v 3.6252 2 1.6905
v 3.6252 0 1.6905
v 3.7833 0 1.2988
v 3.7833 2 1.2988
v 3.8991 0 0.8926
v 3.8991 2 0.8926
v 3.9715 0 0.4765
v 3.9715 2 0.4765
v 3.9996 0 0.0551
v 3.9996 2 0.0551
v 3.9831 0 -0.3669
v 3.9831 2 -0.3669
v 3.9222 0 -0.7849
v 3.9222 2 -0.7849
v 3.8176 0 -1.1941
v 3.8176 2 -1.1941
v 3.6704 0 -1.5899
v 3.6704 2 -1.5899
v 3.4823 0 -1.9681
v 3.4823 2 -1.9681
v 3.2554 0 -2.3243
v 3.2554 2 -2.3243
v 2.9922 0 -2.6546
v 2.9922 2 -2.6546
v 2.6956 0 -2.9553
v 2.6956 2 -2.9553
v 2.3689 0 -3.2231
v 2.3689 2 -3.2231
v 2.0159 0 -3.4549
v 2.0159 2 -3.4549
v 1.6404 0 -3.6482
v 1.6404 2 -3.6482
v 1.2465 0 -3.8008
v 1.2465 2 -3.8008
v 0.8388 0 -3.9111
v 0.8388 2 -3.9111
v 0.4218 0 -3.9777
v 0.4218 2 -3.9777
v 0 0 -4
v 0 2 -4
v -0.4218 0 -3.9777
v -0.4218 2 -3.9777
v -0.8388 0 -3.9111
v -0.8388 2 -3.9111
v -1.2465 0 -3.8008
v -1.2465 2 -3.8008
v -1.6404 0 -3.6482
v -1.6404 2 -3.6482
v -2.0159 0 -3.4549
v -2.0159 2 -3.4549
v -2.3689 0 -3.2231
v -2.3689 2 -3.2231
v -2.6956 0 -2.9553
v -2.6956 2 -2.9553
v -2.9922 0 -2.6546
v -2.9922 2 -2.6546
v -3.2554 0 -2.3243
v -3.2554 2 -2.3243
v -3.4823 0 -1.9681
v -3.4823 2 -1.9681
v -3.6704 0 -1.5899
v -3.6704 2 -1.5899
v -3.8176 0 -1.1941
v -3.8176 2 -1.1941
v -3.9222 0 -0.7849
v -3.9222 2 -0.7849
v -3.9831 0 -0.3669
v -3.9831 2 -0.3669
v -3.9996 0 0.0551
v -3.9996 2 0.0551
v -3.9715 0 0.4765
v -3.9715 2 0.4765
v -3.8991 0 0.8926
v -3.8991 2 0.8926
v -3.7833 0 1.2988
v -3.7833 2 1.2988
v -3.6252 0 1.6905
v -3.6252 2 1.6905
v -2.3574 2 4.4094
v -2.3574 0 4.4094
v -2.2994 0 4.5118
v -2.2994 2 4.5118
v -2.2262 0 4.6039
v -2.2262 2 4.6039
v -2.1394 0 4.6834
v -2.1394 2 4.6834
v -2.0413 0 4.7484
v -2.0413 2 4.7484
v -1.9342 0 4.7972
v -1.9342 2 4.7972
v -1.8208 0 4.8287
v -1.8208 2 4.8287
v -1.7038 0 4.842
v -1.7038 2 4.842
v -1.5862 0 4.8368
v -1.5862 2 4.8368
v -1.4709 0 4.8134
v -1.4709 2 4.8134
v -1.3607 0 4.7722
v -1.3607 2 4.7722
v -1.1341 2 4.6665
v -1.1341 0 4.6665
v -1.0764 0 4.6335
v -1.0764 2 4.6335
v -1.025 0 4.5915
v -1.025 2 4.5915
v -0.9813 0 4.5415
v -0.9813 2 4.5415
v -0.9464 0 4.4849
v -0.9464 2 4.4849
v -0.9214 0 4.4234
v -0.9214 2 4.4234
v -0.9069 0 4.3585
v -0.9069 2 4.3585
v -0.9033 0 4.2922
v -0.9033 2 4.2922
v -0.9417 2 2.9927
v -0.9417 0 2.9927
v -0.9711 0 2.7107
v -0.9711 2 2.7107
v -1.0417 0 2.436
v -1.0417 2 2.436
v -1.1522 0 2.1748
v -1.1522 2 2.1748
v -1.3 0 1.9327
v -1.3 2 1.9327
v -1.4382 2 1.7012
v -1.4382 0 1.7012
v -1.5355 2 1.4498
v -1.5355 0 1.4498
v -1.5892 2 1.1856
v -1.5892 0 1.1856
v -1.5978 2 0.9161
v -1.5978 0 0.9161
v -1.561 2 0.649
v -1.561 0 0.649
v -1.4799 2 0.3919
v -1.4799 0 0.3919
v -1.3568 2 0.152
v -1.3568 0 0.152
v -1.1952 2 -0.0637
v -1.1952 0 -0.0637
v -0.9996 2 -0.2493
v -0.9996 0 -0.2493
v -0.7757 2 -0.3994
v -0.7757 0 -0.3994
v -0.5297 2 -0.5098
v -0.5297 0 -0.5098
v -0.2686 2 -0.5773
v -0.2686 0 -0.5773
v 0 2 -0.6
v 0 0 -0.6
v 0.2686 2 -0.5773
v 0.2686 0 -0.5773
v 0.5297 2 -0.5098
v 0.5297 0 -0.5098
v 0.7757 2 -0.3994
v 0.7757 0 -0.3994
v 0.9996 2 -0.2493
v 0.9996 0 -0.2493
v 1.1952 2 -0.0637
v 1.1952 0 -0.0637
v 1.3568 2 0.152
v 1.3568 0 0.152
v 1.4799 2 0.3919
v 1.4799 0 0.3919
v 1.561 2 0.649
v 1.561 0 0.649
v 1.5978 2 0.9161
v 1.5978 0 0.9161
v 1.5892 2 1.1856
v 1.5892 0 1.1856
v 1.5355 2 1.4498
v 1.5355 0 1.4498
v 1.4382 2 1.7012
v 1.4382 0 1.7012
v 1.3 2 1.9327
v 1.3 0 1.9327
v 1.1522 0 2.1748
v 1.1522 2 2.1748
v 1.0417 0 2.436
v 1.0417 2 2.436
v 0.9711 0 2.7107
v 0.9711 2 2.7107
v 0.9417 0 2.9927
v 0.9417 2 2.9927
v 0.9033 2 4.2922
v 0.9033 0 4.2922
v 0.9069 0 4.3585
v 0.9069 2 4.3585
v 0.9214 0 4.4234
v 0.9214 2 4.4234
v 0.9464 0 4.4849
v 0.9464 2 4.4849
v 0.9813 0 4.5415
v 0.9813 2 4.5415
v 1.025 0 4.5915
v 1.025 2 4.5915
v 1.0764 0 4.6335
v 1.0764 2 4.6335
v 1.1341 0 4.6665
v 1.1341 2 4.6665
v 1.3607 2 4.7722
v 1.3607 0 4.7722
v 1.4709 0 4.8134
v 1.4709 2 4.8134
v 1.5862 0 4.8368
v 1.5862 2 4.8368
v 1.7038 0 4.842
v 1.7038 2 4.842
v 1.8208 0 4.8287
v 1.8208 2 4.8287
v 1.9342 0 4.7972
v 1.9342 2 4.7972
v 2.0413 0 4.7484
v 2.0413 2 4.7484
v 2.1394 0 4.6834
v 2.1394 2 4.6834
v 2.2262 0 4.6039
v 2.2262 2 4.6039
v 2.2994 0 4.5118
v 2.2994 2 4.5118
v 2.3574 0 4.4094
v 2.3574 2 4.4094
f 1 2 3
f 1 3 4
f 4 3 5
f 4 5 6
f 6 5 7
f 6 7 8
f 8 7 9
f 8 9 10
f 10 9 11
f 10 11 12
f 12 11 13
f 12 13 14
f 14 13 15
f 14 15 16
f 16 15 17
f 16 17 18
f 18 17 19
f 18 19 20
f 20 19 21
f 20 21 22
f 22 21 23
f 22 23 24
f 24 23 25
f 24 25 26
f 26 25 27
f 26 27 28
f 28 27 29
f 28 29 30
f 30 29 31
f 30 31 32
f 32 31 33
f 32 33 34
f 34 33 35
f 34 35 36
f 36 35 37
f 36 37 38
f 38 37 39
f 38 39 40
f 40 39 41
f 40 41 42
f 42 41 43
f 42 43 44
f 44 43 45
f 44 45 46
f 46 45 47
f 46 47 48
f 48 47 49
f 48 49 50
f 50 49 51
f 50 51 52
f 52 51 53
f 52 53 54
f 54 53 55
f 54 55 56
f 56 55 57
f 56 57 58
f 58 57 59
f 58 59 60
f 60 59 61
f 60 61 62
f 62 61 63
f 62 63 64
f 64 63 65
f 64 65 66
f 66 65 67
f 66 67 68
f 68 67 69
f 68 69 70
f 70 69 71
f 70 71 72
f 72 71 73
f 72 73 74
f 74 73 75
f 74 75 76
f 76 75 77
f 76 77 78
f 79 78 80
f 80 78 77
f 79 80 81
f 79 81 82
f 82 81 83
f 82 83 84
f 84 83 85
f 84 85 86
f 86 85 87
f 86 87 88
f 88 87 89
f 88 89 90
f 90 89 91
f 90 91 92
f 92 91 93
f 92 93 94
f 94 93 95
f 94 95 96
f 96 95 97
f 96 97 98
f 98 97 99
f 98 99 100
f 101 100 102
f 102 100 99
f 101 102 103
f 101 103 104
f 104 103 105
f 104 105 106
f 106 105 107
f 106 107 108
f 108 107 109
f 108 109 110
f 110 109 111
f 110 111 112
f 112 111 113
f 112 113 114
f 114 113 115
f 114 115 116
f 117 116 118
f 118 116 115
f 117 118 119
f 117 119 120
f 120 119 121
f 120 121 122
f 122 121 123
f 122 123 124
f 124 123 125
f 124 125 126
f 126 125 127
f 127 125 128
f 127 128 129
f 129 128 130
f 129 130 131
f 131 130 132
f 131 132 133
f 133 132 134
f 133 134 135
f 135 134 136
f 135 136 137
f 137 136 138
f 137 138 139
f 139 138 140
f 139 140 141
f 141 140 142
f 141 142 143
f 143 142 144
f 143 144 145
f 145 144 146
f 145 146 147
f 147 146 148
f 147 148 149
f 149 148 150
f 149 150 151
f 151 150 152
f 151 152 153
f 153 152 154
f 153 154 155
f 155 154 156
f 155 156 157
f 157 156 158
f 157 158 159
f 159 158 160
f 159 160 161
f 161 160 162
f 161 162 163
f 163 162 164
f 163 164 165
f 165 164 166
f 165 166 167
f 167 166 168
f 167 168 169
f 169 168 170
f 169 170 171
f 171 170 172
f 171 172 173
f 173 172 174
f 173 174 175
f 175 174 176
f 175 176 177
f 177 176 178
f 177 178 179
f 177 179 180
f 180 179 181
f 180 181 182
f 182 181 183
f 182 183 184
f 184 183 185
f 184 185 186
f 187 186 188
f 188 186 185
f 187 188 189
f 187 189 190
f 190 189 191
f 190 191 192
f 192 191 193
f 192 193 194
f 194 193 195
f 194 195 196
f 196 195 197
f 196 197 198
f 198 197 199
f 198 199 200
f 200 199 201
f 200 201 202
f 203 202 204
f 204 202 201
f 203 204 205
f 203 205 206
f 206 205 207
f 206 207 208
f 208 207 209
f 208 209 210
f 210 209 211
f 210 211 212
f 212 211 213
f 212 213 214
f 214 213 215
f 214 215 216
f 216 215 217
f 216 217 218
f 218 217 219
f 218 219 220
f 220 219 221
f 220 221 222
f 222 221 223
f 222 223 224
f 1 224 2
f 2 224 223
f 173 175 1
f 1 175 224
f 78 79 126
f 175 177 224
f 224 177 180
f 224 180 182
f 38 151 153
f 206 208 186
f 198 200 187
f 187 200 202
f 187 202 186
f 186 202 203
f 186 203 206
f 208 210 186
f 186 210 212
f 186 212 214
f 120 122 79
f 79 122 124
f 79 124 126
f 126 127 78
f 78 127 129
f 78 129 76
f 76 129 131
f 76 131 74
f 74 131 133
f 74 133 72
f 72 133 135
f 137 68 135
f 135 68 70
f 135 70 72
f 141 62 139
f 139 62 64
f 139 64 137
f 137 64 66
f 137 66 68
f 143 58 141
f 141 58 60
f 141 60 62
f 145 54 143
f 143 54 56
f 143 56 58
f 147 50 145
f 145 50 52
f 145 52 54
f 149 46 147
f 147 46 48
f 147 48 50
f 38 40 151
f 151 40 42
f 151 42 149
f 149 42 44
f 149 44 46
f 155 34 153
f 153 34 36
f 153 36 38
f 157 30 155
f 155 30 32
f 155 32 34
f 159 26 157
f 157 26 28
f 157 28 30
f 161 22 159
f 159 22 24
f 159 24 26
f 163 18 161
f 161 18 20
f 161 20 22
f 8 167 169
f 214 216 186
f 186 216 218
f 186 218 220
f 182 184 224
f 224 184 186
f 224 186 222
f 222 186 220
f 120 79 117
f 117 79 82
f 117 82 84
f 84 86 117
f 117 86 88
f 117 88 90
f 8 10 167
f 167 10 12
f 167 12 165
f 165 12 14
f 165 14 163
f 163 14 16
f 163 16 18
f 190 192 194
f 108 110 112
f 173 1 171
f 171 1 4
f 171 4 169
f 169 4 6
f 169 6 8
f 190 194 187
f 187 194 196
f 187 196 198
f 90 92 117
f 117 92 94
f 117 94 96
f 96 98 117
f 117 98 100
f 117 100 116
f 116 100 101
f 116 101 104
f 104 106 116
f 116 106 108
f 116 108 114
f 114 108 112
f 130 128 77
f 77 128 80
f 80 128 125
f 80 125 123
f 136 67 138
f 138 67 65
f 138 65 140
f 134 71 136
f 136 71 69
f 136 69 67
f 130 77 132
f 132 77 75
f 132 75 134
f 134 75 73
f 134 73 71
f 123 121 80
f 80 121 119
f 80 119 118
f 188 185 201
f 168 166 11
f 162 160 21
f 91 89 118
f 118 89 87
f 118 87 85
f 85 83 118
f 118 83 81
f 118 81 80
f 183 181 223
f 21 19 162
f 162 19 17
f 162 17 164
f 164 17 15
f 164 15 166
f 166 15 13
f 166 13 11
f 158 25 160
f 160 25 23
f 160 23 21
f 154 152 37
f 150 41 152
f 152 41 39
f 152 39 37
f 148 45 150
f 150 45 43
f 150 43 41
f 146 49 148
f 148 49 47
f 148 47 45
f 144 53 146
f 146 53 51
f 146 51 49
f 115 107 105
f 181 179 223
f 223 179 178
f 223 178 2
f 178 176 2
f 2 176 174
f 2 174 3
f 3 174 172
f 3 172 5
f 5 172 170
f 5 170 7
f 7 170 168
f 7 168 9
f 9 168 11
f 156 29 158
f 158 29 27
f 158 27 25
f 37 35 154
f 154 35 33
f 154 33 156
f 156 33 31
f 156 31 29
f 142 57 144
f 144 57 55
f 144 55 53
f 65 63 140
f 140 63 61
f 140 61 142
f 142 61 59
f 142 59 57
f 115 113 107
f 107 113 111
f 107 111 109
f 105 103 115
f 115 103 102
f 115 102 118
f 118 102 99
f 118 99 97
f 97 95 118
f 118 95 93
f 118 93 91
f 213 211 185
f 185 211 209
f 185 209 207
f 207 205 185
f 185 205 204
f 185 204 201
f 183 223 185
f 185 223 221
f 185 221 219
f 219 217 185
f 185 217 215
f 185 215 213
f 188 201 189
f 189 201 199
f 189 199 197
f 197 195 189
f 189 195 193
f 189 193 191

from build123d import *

# Parameters (mm, degrees)
BOSS_EXTRUDE1_DEPTH = 2


with BuildPart() as part:
    # Sketch2 → Boss-Extrude1 (new body)
    with BuildSketch(Plane(origin=(0, 0, 0), x_dir=(1, 0, 0), z_dir=(0, 1, 0))):
        with BuildLine():
            Line((-3.625231148, -1.690473047), (-2.357376363, -4.409396408))
            ThreePointArc((-2.357376363, -4.409396408), (-1.93416063, -4.797202177), (-1.360681826, -4.772163552))
            Line((-1.360681826, -4.772163552), (-1.13410488, -4.666508987))
            ThreePointArc((-1.13410488, -4.666508987), (-0.96265902, -4.513901105), (-0.903326596, -4.292174896))
            Line((-0.903326596, -4.292174896), (-0.941712266, -2.992741735))
            ThreePointArc((-0.941712266, -2.992741735), (-1.04172473, -2.435992925), (-1.3, -1.932737905))
            ThreePointArc((-1.3, -1.932737905), (0, 0.6), (1.3, -1.932737905))
            ThreePointArc((1.3, -1.932737905), (1.04172473, -2.435992925), (0.941712266, -2.992741735))
            Line((0.941712266, -2.992741735), (0.903326596, -4.292174896))
            ThreePointArc((0.903326596, -4.292174896), (0.96265902, -4.513901105), (1.13410488, -4.666508987))
            Line((1.13410488, -4.666508987), (1.360681826, -4.772163552))
            ThreePointArc((1.360681826, -4.772163552), (1.93416063, -4.797202177), (2.357376363, -4.409396408))
            Line((2.357376363, -4.409396408), (3.625231148, -1.690473047))
            ThreePointArc((3.625231148, -1.690473047), (0, 4), (-3.625231148, -1.690473047))
        make_face()
    extrude(amount=BOSS_EXTRUDE1_DEPTH)


solid = part.part
